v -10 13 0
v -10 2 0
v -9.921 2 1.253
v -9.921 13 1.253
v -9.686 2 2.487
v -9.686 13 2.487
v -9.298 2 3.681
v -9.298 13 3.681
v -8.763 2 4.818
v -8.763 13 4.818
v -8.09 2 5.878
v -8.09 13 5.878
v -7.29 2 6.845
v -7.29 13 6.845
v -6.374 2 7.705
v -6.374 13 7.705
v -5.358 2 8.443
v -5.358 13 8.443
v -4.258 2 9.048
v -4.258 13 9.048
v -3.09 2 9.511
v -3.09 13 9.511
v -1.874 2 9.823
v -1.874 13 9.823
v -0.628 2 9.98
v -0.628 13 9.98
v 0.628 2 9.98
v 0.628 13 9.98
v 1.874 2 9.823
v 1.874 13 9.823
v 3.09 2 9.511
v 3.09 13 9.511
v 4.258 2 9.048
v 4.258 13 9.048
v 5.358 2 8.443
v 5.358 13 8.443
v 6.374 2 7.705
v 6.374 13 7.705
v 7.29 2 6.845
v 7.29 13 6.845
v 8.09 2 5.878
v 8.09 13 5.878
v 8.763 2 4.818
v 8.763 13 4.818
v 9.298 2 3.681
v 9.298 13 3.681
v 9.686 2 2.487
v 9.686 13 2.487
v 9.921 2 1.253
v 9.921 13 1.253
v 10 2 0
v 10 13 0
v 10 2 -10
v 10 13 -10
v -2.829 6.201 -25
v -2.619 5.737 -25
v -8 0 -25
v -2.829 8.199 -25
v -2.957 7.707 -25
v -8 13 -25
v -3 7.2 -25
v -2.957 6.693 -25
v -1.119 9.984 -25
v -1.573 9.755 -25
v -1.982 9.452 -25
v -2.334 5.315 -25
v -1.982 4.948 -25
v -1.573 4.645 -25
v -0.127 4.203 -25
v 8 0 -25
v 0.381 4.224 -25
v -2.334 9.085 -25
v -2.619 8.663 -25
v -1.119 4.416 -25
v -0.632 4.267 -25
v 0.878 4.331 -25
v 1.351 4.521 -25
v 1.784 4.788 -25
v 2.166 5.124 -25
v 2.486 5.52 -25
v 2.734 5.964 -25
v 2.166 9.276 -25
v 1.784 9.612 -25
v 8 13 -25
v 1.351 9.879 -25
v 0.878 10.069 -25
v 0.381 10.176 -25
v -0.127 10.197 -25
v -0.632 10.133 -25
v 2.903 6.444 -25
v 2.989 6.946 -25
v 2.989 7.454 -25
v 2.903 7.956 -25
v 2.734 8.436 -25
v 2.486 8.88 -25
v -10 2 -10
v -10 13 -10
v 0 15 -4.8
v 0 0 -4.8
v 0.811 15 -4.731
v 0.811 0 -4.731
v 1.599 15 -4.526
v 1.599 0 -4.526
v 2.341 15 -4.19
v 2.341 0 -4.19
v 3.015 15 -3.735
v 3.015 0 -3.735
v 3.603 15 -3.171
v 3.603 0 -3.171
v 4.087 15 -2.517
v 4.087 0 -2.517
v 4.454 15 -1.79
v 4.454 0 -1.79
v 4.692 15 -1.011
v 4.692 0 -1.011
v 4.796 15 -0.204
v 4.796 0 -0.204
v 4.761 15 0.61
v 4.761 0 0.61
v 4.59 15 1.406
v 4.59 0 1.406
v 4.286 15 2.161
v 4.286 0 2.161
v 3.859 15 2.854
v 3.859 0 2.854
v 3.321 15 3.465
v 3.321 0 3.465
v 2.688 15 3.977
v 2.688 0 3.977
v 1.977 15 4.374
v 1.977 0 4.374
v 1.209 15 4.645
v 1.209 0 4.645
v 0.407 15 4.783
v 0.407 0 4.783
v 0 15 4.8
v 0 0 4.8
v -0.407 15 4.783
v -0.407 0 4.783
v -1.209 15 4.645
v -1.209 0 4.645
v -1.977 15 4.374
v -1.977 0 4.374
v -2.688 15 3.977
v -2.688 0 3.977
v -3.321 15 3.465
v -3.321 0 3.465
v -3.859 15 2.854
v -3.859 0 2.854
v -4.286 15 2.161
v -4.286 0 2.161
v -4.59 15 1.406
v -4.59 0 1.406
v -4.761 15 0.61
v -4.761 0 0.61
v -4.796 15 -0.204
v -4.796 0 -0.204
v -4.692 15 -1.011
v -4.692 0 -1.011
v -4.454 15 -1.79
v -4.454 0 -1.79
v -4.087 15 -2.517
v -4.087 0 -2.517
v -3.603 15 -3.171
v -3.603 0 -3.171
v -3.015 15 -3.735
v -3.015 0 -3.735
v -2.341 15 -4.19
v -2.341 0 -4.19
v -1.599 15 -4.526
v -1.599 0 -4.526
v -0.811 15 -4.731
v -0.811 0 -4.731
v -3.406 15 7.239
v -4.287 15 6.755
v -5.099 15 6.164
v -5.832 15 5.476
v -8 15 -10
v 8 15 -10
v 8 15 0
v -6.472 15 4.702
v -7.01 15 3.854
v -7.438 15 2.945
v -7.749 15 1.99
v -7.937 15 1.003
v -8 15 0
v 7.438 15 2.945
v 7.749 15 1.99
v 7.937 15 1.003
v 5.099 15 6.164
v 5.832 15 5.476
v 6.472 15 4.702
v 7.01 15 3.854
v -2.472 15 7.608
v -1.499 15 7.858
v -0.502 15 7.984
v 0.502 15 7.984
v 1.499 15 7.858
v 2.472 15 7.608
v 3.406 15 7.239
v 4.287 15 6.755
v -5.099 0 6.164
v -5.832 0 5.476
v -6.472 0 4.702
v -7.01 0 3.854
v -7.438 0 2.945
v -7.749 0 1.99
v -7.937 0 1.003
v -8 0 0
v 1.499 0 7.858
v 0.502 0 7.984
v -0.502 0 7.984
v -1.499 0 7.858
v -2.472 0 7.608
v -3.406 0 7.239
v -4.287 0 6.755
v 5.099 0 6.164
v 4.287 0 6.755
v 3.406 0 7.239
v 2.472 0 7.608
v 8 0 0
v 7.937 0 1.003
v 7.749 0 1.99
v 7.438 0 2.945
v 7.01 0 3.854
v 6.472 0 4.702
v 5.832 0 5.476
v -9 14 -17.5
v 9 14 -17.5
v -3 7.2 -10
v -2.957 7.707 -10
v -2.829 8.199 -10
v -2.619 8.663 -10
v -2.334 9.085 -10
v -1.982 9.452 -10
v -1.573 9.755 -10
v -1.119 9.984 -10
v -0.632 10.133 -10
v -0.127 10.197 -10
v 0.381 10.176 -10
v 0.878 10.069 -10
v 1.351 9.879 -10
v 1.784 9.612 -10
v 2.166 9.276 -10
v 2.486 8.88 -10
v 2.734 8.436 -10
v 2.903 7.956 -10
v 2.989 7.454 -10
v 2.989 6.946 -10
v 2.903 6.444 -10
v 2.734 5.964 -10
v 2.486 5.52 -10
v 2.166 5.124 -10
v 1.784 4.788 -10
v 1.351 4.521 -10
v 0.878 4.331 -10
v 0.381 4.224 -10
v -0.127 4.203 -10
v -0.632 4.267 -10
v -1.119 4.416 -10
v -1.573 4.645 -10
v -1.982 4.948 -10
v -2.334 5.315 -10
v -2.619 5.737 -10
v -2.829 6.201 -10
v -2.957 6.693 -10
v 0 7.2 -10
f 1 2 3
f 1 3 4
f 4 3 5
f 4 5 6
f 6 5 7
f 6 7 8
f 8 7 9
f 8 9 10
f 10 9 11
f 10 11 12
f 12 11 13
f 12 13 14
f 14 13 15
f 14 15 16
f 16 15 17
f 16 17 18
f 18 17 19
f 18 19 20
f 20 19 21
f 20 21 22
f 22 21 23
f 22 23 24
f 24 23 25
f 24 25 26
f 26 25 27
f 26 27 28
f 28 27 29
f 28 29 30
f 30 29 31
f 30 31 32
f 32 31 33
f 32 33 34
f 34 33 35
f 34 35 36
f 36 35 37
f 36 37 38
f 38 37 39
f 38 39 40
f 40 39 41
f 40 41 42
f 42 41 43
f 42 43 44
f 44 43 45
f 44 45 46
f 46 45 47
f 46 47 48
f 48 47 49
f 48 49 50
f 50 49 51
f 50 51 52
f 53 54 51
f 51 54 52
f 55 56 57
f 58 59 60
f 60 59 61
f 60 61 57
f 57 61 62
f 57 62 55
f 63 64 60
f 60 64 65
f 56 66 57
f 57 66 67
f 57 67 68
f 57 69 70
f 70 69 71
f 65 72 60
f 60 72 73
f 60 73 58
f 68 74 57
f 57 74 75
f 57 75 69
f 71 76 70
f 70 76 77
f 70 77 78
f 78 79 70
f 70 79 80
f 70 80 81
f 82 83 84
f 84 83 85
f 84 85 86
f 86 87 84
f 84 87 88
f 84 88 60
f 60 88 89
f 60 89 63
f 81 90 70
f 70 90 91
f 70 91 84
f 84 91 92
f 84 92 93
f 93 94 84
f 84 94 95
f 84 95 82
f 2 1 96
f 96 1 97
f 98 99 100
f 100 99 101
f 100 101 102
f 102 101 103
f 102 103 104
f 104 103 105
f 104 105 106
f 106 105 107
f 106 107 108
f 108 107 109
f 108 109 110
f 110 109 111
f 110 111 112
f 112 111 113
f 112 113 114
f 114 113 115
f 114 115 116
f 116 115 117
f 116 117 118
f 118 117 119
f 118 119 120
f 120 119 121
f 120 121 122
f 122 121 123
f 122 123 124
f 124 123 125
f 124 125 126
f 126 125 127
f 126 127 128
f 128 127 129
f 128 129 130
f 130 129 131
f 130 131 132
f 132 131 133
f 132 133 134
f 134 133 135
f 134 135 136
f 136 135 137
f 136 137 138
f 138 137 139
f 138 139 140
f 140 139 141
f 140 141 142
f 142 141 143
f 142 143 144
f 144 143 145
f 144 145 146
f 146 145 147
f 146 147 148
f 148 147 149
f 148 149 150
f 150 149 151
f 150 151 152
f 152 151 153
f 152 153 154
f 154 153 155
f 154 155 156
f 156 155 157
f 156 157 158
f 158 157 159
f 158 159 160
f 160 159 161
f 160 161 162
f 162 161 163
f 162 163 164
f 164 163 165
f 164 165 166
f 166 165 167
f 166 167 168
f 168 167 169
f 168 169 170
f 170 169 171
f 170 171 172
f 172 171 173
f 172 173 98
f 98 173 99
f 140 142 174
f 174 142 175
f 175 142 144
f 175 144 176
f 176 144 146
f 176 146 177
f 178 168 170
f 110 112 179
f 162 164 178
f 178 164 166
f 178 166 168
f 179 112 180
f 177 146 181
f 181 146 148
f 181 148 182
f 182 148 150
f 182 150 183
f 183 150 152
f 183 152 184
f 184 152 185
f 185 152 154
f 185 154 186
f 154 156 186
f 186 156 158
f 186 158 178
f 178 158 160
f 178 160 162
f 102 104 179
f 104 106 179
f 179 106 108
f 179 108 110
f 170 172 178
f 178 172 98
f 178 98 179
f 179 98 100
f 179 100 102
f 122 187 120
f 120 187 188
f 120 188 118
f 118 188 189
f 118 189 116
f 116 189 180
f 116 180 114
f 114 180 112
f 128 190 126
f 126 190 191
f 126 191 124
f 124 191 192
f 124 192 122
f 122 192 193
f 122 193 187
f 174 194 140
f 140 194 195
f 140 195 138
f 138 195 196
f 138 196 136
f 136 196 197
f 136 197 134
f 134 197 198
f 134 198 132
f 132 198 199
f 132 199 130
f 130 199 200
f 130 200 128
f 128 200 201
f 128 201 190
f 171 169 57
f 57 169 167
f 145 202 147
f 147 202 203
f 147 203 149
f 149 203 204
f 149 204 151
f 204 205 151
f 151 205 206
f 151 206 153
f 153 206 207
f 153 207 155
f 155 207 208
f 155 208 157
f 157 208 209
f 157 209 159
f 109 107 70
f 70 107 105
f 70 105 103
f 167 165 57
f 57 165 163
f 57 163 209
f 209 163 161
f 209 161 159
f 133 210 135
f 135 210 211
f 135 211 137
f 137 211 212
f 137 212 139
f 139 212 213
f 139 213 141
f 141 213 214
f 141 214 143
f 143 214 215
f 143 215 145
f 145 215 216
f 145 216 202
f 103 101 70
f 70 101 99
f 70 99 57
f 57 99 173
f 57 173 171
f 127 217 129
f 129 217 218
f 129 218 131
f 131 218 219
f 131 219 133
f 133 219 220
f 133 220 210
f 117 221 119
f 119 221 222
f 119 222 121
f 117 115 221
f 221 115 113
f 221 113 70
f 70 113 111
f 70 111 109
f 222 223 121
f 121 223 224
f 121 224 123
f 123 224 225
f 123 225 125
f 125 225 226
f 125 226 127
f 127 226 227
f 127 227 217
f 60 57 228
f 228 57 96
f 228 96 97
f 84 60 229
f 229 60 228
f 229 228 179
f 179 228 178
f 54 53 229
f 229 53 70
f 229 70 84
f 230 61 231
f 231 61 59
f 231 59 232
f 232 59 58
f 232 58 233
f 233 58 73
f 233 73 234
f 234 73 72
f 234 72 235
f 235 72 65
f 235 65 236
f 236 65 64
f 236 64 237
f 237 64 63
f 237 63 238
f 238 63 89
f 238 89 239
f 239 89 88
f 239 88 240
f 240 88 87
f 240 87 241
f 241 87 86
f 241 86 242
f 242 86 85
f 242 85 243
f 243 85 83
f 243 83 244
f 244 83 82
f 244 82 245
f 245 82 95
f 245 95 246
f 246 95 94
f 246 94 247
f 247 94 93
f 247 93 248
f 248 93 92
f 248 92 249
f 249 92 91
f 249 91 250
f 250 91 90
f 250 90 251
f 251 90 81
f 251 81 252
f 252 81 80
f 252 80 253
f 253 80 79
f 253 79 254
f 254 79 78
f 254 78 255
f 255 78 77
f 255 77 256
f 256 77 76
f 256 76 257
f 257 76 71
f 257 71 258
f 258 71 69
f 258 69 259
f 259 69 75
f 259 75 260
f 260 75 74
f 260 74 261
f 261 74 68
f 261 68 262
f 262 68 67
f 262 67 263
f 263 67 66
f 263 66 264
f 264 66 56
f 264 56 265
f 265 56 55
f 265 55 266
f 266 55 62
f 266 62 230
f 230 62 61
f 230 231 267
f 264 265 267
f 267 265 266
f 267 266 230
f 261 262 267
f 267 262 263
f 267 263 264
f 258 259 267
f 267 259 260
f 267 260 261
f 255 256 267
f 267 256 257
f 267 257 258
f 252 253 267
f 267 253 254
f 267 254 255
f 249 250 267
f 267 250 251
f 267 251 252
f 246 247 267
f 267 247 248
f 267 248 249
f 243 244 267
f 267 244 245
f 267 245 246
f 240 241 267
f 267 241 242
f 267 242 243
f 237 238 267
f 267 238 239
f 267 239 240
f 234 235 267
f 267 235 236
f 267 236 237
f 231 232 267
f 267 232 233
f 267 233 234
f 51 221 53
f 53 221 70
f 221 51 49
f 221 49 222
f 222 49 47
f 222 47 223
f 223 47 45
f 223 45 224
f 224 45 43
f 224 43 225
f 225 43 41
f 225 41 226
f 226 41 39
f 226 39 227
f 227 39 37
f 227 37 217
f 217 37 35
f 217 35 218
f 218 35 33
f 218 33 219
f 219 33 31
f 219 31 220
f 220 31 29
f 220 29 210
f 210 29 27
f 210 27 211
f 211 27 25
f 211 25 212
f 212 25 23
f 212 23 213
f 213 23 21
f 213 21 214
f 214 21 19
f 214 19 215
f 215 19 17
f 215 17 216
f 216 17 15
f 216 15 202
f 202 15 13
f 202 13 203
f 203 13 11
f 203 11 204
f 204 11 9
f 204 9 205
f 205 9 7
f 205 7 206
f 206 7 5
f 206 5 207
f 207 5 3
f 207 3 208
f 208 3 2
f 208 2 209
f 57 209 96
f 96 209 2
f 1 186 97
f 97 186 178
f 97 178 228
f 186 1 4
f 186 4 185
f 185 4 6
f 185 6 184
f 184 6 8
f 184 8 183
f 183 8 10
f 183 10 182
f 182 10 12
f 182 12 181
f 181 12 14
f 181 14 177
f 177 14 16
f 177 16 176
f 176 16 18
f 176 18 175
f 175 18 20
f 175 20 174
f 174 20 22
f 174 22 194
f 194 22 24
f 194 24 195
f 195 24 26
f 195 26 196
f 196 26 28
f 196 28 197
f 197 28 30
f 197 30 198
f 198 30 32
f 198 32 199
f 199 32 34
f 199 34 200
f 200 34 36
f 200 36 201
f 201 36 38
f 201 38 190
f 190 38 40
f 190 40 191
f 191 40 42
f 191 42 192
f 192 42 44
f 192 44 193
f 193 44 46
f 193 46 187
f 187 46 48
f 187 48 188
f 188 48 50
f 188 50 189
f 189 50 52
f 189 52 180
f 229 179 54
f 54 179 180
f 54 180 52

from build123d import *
from OCP.BRepFilletAPI import BRepFilletAPI_MakeChamfer

# Parameters (mm, degrees)
BOSS_EXTRUDE1_DEPTH = 15
CHAMFER1_SIZE       = 15
CHAMFER1_SIZE2      = 2
SKETCH2_R           = 3
CUT_EXTRUDE1_DEPTH  = 15
CHAMFER2_SIZE       = 2


with BuildPart() as part:
    # Sketch1 → Boss-Extrude1 (new body)
    with BuildSketch(Plane(origin=(0, 0, 0), x_dir=(1, 0, 0), z_dir=(0, 1, 0))):
        with BuildLine():
            ThreePointArc((-10, 0), (0, 10), (10, 0))
            Line((10, 0), (10, 25))
            Line((10, 25), (-10, 25))
            Line((-10, 25), (-10, 0))
        make_face()
        with BuildLine():
            ThreePointArc((-4.8, 0), (0, 4.8), (4.8, 0))
            Line((4.8, 0), (10, 0))
            ThreePointArc((10, 0), (0, 10), (-10, 0))
            Line((-10, 0), (-4.8, 0))
        make_face()
        with BuildLine():
            Line((10, 0), (4.8, 0))
            ThreePointArc((4.8, 0), (0, -4.8), (-4.8, 0))
            Line((-4.8, 0), (-10, 0))
            ThreePointArc((-10, 0), (0, -10), (10, 0))
        make_face()
    extrude(amount=BOSS_EXTRUDE1_DEPTH)

    # Chamfer1: one chamfer whose edges measure the first distance from different faces: ONE call of the kernel's chamfer builder (chamfer() names one face for all edges)
    chamfer1_edges_1 = [part.edges().sort_by_distance(p)[0] for p in [
        (-10, 7.5, -25),
    ]]
    chamfer1_side_1 = [part.faces().sort_by_distance(p)[0] for p in [
        (-10, 7.5, -12.5),
    ]]
    chamfer1_edges_2 = [part.edges().sort_by_distance(p)[0] for p in [
        (10, 7.5, -25),
    ]]
    chamfer1_side_2 = [part.faces().sort_by_distance(p)[0] for p in [
        (10, 7.5, -12.5),
    ]]
    chamfer1_edges_3 = [part.edges().sort_by_distance(p)[0] for p in [
        (0, 15, -25),
    ]]
    chamfer1_side_3 = [part.faces().sort_by_distance(p)[0] for p in [
        (0, 15, -9.549099972),
    ]]
    chamfer1 = BRepFilletAPI_MakeChamfer(part.part.solid().wrapped)
    for e in chamfer1_edges_1:
        chamfer1.Add(CHAMFER1_SIZE, CHAMFER1_SIZE2, e.wrapped, chamfer1_side_1[0].wrapped)  # the first distance lies on this face
    for e in chamfer1_edges_2:
        chamfer1.Add(CHAMFER1_SIZE, CHAMFER1_SIZE2, e.wrapped, chamfer1_side_2[0].wrapped)  # the first distance lies on this face
    for e in chamfer1_edges_3:
        chamfer1.Add(CHAMFER1_SIZE, CHAMFER1_SIZE2, e.wrapped, chamfer1_side_3[0].wrapped)  # the first distance lies on this face
    add(Compound.cast(chamfer1.Shape()), mode=Mode.REPLACE)

    # Sketch2 → Cut-Extrude1 (cut)
    with BuildSketch(Plane(origin=(0, 0, -25), x_dir=(-1, 0, 0), z_dir=(0, 0, -1))):
        with Locations((0, 7.2)):
            Circle(SKETCH2_R)
    extrude(amount=-CUT_EXTRUDE1_DEPTH, mode=Mode.SUBTRACT)

    # Chamfer2
    chamfer2_edges = [part.edges().sort_by_distance(p)[0] for p in [
        (0, 0, 10),
        (0, 15, 10),
        (-10, 15, -5),
        (-10, 0, -5),
        (10, 0, -5),
        (10, 15, -5),
    ]]
    chamfer(chamfer2_edges, length=CHAMFER2_SIZE)


solid = part.part
